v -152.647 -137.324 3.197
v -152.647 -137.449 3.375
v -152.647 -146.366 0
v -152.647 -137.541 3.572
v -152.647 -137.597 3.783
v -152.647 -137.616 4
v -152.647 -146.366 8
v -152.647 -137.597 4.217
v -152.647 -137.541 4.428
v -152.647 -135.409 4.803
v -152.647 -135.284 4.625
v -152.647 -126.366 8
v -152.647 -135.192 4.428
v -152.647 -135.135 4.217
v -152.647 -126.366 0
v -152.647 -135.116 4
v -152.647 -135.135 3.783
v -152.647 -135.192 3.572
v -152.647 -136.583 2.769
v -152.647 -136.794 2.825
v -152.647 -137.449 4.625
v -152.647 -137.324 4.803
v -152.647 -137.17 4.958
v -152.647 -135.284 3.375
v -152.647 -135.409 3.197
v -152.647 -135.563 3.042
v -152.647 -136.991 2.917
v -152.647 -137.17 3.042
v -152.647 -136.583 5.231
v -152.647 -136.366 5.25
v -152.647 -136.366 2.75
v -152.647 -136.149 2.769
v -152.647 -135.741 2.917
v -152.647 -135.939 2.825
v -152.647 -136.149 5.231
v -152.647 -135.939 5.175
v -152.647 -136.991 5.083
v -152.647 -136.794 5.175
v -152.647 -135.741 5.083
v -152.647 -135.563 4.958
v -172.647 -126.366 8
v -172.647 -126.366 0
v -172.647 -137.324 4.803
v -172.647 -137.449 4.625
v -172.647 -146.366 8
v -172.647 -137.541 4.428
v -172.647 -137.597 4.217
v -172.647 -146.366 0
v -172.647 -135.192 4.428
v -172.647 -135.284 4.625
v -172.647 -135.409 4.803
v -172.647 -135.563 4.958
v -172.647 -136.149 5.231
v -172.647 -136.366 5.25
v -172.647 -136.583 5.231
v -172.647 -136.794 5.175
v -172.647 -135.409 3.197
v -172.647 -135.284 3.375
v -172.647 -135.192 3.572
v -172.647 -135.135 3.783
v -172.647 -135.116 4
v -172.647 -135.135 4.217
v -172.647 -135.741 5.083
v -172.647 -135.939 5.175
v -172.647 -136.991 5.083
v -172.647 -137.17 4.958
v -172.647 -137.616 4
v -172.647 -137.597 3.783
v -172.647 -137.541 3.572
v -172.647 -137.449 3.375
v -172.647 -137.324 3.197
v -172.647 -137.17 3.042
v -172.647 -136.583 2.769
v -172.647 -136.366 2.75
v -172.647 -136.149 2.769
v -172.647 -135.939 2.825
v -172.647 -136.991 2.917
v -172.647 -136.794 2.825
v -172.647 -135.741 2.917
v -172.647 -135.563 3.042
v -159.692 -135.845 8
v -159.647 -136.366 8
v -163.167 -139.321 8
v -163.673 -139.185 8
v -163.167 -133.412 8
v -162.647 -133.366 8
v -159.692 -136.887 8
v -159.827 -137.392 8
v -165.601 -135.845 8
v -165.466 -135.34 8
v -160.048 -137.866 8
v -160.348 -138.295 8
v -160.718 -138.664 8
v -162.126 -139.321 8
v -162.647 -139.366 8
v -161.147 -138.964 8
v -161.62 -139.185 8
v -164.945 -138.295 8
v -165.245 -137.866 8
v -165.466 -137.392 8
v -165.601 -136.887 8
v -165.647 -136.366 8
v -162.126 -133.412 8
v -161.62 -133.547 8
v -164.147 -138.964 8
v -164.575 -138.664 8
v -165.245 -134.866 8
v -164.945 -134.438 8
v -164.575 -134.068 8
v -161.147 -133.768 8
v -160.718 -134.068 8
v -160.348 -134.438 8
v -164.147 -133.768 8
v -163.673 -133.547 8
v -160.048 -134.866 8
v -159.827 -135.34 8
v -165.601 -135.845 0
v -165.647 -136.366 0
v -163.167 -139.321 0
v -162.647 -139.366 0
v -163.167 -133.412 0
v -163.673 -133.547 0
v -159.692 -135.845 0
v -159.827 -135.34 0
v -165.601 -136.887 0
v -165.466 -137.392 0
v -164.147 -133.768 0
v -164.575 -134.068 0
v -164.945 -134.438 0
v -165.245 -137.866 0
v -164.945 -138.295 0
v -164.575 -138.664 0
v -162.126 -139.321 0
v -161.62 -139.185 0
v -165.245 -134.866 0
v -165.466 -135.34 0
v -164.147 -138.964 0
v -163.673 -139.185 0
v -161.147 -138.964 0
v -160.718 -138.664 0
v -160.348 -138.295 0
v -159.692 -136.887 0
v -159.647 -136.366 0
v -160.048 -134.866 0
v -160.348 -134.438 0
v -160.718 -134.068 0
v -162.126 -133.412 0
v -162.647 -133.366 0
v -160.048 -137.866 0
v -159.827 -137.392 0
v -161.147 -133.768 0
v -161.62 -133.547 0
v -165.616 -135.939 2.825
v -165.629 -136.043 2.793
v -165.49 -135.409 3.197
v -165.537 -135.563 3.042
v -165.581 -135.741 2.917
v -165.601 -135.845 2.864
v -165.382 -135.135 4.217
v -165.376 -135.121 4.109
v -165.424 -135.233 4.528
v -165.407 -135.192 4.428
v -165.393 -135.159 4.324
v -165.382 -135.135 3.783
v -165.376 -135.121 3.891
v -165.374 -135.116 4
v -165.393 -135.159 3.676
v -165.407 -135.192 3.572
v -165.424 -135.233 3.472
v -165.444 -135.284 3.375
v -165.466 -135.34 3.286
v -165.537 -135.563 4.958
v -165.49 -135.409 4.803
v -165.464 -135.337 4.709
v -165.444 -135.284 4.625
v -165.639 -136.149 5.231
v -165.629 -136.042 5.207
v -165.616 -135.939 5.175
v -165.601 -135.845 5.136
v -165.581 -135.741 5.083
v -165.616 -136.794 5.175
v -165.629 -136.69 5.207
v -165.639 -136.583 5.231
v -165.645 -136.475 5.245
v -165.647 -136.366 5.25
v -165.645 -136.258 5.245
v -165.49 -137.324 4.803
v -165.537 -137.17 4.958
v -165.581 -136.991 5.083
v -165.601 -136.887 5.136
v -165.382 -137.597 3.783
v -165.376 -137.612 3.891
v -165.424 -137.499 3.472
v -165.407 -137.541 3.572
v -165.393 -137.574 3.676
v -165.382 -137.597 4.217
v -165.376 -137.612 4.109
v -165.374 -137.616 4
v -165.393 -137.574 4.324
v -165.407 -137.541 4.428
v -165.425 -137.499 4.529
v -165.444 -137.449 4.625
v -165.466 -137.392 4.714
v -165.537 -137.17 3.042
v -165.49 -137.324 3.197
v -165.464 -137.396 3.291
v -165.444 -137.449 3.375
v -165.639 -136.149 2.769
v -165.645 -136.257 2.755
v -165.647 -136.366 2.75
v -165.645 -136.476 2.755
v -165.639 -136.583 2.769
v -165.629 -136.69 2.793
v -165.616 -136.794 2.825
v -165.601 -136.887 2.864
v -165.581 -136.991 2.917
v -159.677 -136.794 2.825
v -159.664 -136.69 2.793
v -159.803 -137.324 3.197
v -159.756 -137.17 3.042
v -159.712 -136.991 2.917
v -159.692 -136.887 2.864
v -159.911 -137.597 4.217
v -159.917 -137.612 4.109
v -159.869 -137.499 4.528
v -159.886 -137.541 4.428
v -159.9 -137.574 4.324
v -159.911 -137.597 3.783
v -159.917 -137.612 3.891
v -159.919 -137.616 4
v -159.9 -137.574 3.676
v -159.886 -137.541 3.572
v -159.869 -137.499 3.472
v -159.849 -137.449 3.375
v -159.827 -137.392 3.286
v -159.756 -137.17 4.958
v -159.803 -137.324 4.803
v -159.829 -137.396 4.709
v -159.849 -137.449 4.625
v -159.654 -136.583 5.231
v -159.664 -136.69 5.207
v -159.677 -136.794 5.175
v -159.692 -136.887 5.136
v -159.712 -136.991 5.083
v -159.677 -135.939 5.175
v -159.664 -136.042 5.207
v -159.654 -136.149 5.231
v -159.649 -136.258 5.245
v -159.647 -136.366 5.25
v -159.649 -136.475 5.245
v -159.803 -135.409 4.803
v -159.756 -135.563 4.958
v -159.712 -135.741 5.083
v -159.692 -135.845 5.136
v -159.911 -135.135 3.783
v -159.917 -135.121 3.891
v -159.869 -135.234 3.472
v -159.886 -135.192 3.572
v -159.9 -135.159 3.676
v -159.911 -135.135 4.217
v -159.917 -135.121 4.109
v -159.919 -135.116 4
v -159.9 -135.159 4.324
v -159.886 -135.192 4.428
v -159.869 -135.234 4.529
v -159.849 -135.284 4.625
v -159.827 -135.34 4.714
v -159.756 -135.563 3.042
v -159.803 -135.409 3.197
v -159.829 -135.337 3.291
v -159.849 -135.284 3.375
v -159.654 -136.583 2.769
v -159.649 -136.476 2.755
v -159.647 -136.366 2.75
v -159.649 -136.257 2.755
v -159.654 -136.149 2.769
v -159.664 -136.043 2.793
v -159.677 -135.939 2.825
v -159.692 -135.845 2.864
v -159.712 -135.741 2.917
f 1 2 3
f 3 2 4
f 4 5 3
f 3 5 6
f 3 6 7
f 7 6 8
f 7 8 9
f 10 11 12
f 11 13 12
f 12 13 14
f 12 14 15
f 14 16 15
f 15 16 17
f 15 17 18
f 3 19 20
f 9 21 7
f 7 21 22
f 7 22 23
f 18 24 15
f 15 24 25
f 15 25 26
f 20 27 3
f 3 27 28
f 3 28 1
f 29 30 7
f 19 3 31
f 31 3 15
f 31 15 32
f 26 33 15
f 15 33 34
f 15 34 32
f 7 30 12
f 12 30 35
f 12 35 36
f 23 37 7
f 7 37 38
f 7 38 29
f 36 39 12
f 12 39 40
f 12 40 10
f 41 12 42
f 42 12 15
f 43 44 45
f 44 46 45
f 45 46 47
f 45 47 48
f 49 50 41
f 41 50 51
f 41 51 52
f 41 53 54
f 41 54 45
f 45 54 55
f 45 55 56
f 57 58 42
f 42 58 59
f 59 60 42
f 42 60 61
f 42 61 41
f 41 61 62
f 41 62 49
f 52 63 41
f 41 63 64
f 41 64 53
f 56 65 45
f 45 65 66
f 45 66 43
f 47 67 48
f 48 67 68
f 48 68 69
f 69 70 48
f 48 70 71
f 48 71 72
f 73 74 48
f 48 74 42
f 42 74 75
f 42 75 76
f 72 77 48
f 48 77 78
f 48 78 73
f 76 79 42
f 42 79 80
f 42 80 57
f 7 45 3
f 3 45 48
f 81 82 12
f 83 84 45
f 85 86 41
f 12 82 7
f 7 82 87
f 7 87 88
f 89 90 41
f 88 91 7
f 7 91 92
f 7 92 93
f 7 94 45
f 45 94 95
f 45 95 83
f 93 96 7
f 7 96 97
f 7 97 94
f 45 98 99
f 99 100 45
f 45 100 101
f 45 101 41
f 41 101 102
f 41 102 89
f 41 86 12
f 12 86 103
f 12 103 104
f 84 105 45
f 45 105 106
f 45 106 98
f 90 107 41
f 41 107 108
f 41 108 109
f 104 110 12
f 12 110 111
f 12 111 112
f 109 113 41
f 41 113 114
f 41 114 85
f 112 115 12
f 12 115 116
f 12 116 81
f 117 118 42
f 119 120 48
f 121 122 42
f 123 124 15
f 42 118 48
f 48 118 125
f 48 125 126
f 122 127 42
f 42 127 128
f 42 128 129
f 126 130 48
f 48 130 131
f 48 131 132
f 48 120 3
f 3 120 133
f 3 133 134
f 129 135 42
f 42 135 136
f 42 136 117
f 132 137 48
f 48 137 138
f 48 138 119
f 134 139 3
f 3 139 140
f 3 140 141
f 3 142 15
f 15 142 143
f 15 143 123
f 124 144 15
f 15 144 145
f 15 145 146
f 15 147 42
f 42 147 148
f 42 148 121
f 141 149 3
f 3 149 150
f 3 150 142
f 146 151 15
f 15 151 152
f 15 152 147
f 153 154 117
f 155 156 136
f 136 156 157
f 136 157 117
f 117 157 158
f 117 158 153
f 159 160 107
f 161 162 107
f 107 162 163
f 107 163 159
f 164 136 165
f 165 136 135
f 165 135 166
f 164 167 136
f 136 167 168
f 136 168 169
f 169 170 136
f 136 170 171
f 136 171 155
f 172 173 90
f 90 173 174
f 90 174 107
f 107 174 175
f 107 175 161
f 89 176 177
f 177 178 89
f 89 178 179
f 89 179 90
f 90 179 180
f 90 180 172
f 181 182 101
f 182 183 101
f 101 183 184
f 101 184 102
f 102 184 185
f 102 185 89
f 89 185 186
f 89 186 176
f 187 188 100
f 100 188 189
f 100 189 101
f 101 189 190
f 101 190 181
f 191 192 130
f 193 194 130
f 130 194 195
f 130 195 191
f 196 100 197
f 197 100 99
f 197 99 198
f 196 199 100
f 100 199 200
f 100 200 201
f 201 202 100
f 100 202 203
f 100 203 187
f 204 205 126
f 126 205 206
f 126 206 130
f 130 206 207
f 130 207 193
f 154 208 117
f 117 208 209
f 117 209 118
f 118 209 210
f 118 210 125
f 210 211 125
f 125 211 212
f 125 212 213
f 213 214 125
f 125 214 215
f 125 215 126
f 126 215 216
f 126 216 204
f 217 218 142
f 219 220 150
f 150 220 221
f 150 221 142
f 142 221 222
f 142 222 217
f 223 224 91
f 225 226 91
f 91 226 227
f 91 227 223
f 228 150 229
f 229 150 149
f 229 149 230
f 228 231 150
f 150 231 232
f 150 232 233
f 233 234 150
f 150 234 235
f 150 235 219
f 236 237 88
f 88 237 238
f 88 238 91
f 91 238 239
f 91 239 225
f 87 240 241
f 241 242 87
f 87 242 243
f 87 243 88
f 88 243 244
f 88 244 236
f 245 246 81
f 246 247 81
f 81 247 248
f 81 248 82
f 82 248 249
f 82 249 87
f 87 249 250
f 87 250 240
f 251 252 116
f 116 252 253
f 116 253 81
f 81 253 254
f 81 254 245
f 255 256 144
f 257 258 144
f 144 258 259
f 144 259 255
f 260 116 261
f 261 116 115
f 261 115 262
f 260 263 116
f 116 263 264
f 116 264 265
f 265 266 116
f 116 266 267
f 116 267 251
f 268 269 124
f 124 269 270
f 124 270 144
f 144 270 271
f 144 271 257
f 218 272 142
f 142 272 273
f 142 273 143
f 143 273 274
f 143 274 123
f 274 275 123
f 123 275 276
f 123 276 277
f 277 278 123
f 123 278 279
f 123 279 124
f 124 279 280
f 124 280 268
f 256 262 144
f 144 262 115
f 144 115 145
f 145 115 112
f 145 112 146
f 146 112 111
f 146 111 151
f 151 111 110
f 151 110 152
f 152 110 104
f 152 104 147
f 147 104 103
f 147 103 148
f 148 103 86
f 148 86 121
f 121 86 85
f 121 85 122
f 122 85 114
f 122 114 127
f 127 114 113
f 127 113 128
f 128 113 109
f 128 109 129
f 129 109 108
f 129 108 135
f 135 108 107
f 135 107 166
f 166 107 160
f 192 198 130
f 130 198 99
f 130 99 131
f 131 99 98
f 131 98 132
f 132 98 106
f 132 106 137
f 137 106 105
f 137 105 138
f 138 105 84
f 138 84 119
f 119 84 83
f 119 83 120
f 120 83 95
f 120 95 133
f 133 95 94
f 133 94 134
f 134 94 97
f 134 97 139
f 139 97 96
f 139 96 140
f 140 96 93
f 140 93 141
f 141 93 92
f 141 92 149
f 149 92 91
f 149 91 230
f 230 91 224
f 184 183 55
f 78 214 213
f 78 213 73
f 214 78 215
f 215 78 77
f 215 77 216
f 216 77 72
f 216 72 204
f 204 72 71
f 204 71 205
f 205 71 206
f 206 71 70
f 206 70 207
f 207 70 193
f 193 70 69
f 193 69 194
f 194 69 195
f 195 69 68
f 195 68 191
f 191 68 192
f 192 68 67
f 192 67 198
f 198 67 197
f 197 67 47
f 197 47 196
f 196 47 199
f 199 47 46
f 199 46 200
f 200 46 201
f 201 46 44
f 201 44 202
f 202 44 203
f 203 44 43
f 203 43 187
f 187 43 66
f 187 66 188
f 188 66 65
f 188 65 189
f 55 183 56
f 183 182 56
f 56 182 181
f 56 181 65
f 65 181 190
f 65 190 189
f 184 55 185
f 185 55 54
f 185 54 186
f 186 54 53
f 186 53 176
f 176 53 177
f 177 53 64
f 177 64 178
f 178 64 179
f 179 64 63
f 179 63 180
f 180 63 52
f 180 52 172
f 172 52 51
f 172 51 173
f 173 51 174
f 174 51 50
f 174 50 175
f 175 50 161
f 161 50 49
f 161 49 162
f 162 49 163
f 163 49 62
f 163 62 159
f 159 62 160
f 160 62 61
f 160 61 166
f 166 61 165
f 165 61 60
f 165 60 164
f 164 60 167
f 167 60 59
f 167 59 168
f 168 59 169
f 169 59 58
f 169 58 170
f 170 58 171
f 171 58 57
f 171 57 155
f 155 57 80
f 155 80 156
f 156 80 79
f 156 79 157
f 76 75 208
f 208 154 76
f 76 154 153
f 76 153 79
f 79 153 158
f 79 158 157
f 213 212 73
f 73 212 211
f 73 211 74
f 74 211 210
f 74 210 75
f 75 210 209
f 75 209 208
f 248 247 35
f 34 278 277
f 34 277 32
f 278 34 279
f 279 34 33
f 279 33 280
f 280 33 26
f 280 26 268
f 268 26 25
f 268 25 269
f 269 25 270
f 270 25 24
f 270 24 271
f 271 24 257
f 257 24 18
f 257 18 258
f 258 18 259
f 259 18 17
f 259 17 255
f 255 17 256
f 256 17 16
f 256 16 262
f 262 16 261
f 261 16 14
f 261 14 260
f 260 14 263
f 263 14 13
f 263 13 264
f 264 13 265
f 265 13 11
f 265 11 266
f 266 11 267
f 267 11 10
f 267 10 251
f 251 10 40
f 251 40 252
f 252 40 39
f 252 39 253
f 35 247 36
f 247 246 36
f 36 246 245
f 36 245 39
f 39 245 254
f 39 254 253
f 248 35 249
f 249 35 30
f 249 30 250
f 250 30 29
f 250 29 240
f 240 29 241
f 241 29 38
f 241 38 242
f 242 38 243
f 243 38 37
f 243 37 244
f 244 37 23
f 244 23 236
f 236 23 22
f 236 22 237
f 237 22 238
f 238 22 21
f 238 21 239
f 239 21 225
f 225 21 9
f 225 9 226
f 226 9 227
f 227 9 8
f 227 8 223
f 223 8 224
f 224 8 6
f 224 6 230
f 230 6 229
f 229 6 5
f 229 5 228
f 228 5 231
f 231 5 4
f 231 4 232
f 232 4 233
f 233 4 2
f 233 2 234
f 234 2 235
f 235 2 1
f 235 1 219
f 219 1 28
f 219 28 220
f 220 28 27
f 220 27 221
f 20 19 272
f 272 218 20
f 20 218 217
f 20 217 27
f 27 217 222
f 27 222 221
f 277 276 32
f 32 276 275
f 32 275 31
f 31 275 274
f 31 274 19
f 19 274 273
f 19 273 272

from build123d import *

# Parameters (mm, degrees)
SKETCH1_W           = 20
SKETCH1_H           = 20
BOSS_EXTRUDE1_DEPTH = 8
SKETCH2_R           = 3
CUT_EXTRUDE1_DEPTH  = 9
SKETCH3_R           = 1.25
CUT_EXTRUDE2_DEPTH  = 21


with BuildPart() as part:
    # Sketch1 → Boss-Extrude1 (new body)
    with BuildSketch(Plane.XY):
        with Locations((-162.646542572, -136.36630872)):
            Rectangle(SKETCH1_W, SKETCH1_H)
    extrude(amount=BOSS_EXTRUDE1_DEPTH)

    # Sketch2 → Cut-Extrude1 (cut, through all)
    with BuildSketch(Plane.XY.offset(8)):
        with Locations((-162.646542572, -136.36630872)):
            Circle(SKETCH2_R)
    extrude(amount=-CUT_EXTRUDE1_DEPTH, mode=Mode.SUBTRACT)

    # Sketch3 → Cut-Extrude2 (cut, through all)
    with BuildSketch(Plane(origin=(-152.646542572, 0, 0), x_dir=(0, 0, -1), z_dir=(1, 0, 0))):
        with Locations((-4, -136.36630872)):
            Circle(SKETCH3_R)
    extrude(amount=-CUT_EXTRUDE2_DEPTH, mode=Mode.SUBTRACT)


solid = part.part
